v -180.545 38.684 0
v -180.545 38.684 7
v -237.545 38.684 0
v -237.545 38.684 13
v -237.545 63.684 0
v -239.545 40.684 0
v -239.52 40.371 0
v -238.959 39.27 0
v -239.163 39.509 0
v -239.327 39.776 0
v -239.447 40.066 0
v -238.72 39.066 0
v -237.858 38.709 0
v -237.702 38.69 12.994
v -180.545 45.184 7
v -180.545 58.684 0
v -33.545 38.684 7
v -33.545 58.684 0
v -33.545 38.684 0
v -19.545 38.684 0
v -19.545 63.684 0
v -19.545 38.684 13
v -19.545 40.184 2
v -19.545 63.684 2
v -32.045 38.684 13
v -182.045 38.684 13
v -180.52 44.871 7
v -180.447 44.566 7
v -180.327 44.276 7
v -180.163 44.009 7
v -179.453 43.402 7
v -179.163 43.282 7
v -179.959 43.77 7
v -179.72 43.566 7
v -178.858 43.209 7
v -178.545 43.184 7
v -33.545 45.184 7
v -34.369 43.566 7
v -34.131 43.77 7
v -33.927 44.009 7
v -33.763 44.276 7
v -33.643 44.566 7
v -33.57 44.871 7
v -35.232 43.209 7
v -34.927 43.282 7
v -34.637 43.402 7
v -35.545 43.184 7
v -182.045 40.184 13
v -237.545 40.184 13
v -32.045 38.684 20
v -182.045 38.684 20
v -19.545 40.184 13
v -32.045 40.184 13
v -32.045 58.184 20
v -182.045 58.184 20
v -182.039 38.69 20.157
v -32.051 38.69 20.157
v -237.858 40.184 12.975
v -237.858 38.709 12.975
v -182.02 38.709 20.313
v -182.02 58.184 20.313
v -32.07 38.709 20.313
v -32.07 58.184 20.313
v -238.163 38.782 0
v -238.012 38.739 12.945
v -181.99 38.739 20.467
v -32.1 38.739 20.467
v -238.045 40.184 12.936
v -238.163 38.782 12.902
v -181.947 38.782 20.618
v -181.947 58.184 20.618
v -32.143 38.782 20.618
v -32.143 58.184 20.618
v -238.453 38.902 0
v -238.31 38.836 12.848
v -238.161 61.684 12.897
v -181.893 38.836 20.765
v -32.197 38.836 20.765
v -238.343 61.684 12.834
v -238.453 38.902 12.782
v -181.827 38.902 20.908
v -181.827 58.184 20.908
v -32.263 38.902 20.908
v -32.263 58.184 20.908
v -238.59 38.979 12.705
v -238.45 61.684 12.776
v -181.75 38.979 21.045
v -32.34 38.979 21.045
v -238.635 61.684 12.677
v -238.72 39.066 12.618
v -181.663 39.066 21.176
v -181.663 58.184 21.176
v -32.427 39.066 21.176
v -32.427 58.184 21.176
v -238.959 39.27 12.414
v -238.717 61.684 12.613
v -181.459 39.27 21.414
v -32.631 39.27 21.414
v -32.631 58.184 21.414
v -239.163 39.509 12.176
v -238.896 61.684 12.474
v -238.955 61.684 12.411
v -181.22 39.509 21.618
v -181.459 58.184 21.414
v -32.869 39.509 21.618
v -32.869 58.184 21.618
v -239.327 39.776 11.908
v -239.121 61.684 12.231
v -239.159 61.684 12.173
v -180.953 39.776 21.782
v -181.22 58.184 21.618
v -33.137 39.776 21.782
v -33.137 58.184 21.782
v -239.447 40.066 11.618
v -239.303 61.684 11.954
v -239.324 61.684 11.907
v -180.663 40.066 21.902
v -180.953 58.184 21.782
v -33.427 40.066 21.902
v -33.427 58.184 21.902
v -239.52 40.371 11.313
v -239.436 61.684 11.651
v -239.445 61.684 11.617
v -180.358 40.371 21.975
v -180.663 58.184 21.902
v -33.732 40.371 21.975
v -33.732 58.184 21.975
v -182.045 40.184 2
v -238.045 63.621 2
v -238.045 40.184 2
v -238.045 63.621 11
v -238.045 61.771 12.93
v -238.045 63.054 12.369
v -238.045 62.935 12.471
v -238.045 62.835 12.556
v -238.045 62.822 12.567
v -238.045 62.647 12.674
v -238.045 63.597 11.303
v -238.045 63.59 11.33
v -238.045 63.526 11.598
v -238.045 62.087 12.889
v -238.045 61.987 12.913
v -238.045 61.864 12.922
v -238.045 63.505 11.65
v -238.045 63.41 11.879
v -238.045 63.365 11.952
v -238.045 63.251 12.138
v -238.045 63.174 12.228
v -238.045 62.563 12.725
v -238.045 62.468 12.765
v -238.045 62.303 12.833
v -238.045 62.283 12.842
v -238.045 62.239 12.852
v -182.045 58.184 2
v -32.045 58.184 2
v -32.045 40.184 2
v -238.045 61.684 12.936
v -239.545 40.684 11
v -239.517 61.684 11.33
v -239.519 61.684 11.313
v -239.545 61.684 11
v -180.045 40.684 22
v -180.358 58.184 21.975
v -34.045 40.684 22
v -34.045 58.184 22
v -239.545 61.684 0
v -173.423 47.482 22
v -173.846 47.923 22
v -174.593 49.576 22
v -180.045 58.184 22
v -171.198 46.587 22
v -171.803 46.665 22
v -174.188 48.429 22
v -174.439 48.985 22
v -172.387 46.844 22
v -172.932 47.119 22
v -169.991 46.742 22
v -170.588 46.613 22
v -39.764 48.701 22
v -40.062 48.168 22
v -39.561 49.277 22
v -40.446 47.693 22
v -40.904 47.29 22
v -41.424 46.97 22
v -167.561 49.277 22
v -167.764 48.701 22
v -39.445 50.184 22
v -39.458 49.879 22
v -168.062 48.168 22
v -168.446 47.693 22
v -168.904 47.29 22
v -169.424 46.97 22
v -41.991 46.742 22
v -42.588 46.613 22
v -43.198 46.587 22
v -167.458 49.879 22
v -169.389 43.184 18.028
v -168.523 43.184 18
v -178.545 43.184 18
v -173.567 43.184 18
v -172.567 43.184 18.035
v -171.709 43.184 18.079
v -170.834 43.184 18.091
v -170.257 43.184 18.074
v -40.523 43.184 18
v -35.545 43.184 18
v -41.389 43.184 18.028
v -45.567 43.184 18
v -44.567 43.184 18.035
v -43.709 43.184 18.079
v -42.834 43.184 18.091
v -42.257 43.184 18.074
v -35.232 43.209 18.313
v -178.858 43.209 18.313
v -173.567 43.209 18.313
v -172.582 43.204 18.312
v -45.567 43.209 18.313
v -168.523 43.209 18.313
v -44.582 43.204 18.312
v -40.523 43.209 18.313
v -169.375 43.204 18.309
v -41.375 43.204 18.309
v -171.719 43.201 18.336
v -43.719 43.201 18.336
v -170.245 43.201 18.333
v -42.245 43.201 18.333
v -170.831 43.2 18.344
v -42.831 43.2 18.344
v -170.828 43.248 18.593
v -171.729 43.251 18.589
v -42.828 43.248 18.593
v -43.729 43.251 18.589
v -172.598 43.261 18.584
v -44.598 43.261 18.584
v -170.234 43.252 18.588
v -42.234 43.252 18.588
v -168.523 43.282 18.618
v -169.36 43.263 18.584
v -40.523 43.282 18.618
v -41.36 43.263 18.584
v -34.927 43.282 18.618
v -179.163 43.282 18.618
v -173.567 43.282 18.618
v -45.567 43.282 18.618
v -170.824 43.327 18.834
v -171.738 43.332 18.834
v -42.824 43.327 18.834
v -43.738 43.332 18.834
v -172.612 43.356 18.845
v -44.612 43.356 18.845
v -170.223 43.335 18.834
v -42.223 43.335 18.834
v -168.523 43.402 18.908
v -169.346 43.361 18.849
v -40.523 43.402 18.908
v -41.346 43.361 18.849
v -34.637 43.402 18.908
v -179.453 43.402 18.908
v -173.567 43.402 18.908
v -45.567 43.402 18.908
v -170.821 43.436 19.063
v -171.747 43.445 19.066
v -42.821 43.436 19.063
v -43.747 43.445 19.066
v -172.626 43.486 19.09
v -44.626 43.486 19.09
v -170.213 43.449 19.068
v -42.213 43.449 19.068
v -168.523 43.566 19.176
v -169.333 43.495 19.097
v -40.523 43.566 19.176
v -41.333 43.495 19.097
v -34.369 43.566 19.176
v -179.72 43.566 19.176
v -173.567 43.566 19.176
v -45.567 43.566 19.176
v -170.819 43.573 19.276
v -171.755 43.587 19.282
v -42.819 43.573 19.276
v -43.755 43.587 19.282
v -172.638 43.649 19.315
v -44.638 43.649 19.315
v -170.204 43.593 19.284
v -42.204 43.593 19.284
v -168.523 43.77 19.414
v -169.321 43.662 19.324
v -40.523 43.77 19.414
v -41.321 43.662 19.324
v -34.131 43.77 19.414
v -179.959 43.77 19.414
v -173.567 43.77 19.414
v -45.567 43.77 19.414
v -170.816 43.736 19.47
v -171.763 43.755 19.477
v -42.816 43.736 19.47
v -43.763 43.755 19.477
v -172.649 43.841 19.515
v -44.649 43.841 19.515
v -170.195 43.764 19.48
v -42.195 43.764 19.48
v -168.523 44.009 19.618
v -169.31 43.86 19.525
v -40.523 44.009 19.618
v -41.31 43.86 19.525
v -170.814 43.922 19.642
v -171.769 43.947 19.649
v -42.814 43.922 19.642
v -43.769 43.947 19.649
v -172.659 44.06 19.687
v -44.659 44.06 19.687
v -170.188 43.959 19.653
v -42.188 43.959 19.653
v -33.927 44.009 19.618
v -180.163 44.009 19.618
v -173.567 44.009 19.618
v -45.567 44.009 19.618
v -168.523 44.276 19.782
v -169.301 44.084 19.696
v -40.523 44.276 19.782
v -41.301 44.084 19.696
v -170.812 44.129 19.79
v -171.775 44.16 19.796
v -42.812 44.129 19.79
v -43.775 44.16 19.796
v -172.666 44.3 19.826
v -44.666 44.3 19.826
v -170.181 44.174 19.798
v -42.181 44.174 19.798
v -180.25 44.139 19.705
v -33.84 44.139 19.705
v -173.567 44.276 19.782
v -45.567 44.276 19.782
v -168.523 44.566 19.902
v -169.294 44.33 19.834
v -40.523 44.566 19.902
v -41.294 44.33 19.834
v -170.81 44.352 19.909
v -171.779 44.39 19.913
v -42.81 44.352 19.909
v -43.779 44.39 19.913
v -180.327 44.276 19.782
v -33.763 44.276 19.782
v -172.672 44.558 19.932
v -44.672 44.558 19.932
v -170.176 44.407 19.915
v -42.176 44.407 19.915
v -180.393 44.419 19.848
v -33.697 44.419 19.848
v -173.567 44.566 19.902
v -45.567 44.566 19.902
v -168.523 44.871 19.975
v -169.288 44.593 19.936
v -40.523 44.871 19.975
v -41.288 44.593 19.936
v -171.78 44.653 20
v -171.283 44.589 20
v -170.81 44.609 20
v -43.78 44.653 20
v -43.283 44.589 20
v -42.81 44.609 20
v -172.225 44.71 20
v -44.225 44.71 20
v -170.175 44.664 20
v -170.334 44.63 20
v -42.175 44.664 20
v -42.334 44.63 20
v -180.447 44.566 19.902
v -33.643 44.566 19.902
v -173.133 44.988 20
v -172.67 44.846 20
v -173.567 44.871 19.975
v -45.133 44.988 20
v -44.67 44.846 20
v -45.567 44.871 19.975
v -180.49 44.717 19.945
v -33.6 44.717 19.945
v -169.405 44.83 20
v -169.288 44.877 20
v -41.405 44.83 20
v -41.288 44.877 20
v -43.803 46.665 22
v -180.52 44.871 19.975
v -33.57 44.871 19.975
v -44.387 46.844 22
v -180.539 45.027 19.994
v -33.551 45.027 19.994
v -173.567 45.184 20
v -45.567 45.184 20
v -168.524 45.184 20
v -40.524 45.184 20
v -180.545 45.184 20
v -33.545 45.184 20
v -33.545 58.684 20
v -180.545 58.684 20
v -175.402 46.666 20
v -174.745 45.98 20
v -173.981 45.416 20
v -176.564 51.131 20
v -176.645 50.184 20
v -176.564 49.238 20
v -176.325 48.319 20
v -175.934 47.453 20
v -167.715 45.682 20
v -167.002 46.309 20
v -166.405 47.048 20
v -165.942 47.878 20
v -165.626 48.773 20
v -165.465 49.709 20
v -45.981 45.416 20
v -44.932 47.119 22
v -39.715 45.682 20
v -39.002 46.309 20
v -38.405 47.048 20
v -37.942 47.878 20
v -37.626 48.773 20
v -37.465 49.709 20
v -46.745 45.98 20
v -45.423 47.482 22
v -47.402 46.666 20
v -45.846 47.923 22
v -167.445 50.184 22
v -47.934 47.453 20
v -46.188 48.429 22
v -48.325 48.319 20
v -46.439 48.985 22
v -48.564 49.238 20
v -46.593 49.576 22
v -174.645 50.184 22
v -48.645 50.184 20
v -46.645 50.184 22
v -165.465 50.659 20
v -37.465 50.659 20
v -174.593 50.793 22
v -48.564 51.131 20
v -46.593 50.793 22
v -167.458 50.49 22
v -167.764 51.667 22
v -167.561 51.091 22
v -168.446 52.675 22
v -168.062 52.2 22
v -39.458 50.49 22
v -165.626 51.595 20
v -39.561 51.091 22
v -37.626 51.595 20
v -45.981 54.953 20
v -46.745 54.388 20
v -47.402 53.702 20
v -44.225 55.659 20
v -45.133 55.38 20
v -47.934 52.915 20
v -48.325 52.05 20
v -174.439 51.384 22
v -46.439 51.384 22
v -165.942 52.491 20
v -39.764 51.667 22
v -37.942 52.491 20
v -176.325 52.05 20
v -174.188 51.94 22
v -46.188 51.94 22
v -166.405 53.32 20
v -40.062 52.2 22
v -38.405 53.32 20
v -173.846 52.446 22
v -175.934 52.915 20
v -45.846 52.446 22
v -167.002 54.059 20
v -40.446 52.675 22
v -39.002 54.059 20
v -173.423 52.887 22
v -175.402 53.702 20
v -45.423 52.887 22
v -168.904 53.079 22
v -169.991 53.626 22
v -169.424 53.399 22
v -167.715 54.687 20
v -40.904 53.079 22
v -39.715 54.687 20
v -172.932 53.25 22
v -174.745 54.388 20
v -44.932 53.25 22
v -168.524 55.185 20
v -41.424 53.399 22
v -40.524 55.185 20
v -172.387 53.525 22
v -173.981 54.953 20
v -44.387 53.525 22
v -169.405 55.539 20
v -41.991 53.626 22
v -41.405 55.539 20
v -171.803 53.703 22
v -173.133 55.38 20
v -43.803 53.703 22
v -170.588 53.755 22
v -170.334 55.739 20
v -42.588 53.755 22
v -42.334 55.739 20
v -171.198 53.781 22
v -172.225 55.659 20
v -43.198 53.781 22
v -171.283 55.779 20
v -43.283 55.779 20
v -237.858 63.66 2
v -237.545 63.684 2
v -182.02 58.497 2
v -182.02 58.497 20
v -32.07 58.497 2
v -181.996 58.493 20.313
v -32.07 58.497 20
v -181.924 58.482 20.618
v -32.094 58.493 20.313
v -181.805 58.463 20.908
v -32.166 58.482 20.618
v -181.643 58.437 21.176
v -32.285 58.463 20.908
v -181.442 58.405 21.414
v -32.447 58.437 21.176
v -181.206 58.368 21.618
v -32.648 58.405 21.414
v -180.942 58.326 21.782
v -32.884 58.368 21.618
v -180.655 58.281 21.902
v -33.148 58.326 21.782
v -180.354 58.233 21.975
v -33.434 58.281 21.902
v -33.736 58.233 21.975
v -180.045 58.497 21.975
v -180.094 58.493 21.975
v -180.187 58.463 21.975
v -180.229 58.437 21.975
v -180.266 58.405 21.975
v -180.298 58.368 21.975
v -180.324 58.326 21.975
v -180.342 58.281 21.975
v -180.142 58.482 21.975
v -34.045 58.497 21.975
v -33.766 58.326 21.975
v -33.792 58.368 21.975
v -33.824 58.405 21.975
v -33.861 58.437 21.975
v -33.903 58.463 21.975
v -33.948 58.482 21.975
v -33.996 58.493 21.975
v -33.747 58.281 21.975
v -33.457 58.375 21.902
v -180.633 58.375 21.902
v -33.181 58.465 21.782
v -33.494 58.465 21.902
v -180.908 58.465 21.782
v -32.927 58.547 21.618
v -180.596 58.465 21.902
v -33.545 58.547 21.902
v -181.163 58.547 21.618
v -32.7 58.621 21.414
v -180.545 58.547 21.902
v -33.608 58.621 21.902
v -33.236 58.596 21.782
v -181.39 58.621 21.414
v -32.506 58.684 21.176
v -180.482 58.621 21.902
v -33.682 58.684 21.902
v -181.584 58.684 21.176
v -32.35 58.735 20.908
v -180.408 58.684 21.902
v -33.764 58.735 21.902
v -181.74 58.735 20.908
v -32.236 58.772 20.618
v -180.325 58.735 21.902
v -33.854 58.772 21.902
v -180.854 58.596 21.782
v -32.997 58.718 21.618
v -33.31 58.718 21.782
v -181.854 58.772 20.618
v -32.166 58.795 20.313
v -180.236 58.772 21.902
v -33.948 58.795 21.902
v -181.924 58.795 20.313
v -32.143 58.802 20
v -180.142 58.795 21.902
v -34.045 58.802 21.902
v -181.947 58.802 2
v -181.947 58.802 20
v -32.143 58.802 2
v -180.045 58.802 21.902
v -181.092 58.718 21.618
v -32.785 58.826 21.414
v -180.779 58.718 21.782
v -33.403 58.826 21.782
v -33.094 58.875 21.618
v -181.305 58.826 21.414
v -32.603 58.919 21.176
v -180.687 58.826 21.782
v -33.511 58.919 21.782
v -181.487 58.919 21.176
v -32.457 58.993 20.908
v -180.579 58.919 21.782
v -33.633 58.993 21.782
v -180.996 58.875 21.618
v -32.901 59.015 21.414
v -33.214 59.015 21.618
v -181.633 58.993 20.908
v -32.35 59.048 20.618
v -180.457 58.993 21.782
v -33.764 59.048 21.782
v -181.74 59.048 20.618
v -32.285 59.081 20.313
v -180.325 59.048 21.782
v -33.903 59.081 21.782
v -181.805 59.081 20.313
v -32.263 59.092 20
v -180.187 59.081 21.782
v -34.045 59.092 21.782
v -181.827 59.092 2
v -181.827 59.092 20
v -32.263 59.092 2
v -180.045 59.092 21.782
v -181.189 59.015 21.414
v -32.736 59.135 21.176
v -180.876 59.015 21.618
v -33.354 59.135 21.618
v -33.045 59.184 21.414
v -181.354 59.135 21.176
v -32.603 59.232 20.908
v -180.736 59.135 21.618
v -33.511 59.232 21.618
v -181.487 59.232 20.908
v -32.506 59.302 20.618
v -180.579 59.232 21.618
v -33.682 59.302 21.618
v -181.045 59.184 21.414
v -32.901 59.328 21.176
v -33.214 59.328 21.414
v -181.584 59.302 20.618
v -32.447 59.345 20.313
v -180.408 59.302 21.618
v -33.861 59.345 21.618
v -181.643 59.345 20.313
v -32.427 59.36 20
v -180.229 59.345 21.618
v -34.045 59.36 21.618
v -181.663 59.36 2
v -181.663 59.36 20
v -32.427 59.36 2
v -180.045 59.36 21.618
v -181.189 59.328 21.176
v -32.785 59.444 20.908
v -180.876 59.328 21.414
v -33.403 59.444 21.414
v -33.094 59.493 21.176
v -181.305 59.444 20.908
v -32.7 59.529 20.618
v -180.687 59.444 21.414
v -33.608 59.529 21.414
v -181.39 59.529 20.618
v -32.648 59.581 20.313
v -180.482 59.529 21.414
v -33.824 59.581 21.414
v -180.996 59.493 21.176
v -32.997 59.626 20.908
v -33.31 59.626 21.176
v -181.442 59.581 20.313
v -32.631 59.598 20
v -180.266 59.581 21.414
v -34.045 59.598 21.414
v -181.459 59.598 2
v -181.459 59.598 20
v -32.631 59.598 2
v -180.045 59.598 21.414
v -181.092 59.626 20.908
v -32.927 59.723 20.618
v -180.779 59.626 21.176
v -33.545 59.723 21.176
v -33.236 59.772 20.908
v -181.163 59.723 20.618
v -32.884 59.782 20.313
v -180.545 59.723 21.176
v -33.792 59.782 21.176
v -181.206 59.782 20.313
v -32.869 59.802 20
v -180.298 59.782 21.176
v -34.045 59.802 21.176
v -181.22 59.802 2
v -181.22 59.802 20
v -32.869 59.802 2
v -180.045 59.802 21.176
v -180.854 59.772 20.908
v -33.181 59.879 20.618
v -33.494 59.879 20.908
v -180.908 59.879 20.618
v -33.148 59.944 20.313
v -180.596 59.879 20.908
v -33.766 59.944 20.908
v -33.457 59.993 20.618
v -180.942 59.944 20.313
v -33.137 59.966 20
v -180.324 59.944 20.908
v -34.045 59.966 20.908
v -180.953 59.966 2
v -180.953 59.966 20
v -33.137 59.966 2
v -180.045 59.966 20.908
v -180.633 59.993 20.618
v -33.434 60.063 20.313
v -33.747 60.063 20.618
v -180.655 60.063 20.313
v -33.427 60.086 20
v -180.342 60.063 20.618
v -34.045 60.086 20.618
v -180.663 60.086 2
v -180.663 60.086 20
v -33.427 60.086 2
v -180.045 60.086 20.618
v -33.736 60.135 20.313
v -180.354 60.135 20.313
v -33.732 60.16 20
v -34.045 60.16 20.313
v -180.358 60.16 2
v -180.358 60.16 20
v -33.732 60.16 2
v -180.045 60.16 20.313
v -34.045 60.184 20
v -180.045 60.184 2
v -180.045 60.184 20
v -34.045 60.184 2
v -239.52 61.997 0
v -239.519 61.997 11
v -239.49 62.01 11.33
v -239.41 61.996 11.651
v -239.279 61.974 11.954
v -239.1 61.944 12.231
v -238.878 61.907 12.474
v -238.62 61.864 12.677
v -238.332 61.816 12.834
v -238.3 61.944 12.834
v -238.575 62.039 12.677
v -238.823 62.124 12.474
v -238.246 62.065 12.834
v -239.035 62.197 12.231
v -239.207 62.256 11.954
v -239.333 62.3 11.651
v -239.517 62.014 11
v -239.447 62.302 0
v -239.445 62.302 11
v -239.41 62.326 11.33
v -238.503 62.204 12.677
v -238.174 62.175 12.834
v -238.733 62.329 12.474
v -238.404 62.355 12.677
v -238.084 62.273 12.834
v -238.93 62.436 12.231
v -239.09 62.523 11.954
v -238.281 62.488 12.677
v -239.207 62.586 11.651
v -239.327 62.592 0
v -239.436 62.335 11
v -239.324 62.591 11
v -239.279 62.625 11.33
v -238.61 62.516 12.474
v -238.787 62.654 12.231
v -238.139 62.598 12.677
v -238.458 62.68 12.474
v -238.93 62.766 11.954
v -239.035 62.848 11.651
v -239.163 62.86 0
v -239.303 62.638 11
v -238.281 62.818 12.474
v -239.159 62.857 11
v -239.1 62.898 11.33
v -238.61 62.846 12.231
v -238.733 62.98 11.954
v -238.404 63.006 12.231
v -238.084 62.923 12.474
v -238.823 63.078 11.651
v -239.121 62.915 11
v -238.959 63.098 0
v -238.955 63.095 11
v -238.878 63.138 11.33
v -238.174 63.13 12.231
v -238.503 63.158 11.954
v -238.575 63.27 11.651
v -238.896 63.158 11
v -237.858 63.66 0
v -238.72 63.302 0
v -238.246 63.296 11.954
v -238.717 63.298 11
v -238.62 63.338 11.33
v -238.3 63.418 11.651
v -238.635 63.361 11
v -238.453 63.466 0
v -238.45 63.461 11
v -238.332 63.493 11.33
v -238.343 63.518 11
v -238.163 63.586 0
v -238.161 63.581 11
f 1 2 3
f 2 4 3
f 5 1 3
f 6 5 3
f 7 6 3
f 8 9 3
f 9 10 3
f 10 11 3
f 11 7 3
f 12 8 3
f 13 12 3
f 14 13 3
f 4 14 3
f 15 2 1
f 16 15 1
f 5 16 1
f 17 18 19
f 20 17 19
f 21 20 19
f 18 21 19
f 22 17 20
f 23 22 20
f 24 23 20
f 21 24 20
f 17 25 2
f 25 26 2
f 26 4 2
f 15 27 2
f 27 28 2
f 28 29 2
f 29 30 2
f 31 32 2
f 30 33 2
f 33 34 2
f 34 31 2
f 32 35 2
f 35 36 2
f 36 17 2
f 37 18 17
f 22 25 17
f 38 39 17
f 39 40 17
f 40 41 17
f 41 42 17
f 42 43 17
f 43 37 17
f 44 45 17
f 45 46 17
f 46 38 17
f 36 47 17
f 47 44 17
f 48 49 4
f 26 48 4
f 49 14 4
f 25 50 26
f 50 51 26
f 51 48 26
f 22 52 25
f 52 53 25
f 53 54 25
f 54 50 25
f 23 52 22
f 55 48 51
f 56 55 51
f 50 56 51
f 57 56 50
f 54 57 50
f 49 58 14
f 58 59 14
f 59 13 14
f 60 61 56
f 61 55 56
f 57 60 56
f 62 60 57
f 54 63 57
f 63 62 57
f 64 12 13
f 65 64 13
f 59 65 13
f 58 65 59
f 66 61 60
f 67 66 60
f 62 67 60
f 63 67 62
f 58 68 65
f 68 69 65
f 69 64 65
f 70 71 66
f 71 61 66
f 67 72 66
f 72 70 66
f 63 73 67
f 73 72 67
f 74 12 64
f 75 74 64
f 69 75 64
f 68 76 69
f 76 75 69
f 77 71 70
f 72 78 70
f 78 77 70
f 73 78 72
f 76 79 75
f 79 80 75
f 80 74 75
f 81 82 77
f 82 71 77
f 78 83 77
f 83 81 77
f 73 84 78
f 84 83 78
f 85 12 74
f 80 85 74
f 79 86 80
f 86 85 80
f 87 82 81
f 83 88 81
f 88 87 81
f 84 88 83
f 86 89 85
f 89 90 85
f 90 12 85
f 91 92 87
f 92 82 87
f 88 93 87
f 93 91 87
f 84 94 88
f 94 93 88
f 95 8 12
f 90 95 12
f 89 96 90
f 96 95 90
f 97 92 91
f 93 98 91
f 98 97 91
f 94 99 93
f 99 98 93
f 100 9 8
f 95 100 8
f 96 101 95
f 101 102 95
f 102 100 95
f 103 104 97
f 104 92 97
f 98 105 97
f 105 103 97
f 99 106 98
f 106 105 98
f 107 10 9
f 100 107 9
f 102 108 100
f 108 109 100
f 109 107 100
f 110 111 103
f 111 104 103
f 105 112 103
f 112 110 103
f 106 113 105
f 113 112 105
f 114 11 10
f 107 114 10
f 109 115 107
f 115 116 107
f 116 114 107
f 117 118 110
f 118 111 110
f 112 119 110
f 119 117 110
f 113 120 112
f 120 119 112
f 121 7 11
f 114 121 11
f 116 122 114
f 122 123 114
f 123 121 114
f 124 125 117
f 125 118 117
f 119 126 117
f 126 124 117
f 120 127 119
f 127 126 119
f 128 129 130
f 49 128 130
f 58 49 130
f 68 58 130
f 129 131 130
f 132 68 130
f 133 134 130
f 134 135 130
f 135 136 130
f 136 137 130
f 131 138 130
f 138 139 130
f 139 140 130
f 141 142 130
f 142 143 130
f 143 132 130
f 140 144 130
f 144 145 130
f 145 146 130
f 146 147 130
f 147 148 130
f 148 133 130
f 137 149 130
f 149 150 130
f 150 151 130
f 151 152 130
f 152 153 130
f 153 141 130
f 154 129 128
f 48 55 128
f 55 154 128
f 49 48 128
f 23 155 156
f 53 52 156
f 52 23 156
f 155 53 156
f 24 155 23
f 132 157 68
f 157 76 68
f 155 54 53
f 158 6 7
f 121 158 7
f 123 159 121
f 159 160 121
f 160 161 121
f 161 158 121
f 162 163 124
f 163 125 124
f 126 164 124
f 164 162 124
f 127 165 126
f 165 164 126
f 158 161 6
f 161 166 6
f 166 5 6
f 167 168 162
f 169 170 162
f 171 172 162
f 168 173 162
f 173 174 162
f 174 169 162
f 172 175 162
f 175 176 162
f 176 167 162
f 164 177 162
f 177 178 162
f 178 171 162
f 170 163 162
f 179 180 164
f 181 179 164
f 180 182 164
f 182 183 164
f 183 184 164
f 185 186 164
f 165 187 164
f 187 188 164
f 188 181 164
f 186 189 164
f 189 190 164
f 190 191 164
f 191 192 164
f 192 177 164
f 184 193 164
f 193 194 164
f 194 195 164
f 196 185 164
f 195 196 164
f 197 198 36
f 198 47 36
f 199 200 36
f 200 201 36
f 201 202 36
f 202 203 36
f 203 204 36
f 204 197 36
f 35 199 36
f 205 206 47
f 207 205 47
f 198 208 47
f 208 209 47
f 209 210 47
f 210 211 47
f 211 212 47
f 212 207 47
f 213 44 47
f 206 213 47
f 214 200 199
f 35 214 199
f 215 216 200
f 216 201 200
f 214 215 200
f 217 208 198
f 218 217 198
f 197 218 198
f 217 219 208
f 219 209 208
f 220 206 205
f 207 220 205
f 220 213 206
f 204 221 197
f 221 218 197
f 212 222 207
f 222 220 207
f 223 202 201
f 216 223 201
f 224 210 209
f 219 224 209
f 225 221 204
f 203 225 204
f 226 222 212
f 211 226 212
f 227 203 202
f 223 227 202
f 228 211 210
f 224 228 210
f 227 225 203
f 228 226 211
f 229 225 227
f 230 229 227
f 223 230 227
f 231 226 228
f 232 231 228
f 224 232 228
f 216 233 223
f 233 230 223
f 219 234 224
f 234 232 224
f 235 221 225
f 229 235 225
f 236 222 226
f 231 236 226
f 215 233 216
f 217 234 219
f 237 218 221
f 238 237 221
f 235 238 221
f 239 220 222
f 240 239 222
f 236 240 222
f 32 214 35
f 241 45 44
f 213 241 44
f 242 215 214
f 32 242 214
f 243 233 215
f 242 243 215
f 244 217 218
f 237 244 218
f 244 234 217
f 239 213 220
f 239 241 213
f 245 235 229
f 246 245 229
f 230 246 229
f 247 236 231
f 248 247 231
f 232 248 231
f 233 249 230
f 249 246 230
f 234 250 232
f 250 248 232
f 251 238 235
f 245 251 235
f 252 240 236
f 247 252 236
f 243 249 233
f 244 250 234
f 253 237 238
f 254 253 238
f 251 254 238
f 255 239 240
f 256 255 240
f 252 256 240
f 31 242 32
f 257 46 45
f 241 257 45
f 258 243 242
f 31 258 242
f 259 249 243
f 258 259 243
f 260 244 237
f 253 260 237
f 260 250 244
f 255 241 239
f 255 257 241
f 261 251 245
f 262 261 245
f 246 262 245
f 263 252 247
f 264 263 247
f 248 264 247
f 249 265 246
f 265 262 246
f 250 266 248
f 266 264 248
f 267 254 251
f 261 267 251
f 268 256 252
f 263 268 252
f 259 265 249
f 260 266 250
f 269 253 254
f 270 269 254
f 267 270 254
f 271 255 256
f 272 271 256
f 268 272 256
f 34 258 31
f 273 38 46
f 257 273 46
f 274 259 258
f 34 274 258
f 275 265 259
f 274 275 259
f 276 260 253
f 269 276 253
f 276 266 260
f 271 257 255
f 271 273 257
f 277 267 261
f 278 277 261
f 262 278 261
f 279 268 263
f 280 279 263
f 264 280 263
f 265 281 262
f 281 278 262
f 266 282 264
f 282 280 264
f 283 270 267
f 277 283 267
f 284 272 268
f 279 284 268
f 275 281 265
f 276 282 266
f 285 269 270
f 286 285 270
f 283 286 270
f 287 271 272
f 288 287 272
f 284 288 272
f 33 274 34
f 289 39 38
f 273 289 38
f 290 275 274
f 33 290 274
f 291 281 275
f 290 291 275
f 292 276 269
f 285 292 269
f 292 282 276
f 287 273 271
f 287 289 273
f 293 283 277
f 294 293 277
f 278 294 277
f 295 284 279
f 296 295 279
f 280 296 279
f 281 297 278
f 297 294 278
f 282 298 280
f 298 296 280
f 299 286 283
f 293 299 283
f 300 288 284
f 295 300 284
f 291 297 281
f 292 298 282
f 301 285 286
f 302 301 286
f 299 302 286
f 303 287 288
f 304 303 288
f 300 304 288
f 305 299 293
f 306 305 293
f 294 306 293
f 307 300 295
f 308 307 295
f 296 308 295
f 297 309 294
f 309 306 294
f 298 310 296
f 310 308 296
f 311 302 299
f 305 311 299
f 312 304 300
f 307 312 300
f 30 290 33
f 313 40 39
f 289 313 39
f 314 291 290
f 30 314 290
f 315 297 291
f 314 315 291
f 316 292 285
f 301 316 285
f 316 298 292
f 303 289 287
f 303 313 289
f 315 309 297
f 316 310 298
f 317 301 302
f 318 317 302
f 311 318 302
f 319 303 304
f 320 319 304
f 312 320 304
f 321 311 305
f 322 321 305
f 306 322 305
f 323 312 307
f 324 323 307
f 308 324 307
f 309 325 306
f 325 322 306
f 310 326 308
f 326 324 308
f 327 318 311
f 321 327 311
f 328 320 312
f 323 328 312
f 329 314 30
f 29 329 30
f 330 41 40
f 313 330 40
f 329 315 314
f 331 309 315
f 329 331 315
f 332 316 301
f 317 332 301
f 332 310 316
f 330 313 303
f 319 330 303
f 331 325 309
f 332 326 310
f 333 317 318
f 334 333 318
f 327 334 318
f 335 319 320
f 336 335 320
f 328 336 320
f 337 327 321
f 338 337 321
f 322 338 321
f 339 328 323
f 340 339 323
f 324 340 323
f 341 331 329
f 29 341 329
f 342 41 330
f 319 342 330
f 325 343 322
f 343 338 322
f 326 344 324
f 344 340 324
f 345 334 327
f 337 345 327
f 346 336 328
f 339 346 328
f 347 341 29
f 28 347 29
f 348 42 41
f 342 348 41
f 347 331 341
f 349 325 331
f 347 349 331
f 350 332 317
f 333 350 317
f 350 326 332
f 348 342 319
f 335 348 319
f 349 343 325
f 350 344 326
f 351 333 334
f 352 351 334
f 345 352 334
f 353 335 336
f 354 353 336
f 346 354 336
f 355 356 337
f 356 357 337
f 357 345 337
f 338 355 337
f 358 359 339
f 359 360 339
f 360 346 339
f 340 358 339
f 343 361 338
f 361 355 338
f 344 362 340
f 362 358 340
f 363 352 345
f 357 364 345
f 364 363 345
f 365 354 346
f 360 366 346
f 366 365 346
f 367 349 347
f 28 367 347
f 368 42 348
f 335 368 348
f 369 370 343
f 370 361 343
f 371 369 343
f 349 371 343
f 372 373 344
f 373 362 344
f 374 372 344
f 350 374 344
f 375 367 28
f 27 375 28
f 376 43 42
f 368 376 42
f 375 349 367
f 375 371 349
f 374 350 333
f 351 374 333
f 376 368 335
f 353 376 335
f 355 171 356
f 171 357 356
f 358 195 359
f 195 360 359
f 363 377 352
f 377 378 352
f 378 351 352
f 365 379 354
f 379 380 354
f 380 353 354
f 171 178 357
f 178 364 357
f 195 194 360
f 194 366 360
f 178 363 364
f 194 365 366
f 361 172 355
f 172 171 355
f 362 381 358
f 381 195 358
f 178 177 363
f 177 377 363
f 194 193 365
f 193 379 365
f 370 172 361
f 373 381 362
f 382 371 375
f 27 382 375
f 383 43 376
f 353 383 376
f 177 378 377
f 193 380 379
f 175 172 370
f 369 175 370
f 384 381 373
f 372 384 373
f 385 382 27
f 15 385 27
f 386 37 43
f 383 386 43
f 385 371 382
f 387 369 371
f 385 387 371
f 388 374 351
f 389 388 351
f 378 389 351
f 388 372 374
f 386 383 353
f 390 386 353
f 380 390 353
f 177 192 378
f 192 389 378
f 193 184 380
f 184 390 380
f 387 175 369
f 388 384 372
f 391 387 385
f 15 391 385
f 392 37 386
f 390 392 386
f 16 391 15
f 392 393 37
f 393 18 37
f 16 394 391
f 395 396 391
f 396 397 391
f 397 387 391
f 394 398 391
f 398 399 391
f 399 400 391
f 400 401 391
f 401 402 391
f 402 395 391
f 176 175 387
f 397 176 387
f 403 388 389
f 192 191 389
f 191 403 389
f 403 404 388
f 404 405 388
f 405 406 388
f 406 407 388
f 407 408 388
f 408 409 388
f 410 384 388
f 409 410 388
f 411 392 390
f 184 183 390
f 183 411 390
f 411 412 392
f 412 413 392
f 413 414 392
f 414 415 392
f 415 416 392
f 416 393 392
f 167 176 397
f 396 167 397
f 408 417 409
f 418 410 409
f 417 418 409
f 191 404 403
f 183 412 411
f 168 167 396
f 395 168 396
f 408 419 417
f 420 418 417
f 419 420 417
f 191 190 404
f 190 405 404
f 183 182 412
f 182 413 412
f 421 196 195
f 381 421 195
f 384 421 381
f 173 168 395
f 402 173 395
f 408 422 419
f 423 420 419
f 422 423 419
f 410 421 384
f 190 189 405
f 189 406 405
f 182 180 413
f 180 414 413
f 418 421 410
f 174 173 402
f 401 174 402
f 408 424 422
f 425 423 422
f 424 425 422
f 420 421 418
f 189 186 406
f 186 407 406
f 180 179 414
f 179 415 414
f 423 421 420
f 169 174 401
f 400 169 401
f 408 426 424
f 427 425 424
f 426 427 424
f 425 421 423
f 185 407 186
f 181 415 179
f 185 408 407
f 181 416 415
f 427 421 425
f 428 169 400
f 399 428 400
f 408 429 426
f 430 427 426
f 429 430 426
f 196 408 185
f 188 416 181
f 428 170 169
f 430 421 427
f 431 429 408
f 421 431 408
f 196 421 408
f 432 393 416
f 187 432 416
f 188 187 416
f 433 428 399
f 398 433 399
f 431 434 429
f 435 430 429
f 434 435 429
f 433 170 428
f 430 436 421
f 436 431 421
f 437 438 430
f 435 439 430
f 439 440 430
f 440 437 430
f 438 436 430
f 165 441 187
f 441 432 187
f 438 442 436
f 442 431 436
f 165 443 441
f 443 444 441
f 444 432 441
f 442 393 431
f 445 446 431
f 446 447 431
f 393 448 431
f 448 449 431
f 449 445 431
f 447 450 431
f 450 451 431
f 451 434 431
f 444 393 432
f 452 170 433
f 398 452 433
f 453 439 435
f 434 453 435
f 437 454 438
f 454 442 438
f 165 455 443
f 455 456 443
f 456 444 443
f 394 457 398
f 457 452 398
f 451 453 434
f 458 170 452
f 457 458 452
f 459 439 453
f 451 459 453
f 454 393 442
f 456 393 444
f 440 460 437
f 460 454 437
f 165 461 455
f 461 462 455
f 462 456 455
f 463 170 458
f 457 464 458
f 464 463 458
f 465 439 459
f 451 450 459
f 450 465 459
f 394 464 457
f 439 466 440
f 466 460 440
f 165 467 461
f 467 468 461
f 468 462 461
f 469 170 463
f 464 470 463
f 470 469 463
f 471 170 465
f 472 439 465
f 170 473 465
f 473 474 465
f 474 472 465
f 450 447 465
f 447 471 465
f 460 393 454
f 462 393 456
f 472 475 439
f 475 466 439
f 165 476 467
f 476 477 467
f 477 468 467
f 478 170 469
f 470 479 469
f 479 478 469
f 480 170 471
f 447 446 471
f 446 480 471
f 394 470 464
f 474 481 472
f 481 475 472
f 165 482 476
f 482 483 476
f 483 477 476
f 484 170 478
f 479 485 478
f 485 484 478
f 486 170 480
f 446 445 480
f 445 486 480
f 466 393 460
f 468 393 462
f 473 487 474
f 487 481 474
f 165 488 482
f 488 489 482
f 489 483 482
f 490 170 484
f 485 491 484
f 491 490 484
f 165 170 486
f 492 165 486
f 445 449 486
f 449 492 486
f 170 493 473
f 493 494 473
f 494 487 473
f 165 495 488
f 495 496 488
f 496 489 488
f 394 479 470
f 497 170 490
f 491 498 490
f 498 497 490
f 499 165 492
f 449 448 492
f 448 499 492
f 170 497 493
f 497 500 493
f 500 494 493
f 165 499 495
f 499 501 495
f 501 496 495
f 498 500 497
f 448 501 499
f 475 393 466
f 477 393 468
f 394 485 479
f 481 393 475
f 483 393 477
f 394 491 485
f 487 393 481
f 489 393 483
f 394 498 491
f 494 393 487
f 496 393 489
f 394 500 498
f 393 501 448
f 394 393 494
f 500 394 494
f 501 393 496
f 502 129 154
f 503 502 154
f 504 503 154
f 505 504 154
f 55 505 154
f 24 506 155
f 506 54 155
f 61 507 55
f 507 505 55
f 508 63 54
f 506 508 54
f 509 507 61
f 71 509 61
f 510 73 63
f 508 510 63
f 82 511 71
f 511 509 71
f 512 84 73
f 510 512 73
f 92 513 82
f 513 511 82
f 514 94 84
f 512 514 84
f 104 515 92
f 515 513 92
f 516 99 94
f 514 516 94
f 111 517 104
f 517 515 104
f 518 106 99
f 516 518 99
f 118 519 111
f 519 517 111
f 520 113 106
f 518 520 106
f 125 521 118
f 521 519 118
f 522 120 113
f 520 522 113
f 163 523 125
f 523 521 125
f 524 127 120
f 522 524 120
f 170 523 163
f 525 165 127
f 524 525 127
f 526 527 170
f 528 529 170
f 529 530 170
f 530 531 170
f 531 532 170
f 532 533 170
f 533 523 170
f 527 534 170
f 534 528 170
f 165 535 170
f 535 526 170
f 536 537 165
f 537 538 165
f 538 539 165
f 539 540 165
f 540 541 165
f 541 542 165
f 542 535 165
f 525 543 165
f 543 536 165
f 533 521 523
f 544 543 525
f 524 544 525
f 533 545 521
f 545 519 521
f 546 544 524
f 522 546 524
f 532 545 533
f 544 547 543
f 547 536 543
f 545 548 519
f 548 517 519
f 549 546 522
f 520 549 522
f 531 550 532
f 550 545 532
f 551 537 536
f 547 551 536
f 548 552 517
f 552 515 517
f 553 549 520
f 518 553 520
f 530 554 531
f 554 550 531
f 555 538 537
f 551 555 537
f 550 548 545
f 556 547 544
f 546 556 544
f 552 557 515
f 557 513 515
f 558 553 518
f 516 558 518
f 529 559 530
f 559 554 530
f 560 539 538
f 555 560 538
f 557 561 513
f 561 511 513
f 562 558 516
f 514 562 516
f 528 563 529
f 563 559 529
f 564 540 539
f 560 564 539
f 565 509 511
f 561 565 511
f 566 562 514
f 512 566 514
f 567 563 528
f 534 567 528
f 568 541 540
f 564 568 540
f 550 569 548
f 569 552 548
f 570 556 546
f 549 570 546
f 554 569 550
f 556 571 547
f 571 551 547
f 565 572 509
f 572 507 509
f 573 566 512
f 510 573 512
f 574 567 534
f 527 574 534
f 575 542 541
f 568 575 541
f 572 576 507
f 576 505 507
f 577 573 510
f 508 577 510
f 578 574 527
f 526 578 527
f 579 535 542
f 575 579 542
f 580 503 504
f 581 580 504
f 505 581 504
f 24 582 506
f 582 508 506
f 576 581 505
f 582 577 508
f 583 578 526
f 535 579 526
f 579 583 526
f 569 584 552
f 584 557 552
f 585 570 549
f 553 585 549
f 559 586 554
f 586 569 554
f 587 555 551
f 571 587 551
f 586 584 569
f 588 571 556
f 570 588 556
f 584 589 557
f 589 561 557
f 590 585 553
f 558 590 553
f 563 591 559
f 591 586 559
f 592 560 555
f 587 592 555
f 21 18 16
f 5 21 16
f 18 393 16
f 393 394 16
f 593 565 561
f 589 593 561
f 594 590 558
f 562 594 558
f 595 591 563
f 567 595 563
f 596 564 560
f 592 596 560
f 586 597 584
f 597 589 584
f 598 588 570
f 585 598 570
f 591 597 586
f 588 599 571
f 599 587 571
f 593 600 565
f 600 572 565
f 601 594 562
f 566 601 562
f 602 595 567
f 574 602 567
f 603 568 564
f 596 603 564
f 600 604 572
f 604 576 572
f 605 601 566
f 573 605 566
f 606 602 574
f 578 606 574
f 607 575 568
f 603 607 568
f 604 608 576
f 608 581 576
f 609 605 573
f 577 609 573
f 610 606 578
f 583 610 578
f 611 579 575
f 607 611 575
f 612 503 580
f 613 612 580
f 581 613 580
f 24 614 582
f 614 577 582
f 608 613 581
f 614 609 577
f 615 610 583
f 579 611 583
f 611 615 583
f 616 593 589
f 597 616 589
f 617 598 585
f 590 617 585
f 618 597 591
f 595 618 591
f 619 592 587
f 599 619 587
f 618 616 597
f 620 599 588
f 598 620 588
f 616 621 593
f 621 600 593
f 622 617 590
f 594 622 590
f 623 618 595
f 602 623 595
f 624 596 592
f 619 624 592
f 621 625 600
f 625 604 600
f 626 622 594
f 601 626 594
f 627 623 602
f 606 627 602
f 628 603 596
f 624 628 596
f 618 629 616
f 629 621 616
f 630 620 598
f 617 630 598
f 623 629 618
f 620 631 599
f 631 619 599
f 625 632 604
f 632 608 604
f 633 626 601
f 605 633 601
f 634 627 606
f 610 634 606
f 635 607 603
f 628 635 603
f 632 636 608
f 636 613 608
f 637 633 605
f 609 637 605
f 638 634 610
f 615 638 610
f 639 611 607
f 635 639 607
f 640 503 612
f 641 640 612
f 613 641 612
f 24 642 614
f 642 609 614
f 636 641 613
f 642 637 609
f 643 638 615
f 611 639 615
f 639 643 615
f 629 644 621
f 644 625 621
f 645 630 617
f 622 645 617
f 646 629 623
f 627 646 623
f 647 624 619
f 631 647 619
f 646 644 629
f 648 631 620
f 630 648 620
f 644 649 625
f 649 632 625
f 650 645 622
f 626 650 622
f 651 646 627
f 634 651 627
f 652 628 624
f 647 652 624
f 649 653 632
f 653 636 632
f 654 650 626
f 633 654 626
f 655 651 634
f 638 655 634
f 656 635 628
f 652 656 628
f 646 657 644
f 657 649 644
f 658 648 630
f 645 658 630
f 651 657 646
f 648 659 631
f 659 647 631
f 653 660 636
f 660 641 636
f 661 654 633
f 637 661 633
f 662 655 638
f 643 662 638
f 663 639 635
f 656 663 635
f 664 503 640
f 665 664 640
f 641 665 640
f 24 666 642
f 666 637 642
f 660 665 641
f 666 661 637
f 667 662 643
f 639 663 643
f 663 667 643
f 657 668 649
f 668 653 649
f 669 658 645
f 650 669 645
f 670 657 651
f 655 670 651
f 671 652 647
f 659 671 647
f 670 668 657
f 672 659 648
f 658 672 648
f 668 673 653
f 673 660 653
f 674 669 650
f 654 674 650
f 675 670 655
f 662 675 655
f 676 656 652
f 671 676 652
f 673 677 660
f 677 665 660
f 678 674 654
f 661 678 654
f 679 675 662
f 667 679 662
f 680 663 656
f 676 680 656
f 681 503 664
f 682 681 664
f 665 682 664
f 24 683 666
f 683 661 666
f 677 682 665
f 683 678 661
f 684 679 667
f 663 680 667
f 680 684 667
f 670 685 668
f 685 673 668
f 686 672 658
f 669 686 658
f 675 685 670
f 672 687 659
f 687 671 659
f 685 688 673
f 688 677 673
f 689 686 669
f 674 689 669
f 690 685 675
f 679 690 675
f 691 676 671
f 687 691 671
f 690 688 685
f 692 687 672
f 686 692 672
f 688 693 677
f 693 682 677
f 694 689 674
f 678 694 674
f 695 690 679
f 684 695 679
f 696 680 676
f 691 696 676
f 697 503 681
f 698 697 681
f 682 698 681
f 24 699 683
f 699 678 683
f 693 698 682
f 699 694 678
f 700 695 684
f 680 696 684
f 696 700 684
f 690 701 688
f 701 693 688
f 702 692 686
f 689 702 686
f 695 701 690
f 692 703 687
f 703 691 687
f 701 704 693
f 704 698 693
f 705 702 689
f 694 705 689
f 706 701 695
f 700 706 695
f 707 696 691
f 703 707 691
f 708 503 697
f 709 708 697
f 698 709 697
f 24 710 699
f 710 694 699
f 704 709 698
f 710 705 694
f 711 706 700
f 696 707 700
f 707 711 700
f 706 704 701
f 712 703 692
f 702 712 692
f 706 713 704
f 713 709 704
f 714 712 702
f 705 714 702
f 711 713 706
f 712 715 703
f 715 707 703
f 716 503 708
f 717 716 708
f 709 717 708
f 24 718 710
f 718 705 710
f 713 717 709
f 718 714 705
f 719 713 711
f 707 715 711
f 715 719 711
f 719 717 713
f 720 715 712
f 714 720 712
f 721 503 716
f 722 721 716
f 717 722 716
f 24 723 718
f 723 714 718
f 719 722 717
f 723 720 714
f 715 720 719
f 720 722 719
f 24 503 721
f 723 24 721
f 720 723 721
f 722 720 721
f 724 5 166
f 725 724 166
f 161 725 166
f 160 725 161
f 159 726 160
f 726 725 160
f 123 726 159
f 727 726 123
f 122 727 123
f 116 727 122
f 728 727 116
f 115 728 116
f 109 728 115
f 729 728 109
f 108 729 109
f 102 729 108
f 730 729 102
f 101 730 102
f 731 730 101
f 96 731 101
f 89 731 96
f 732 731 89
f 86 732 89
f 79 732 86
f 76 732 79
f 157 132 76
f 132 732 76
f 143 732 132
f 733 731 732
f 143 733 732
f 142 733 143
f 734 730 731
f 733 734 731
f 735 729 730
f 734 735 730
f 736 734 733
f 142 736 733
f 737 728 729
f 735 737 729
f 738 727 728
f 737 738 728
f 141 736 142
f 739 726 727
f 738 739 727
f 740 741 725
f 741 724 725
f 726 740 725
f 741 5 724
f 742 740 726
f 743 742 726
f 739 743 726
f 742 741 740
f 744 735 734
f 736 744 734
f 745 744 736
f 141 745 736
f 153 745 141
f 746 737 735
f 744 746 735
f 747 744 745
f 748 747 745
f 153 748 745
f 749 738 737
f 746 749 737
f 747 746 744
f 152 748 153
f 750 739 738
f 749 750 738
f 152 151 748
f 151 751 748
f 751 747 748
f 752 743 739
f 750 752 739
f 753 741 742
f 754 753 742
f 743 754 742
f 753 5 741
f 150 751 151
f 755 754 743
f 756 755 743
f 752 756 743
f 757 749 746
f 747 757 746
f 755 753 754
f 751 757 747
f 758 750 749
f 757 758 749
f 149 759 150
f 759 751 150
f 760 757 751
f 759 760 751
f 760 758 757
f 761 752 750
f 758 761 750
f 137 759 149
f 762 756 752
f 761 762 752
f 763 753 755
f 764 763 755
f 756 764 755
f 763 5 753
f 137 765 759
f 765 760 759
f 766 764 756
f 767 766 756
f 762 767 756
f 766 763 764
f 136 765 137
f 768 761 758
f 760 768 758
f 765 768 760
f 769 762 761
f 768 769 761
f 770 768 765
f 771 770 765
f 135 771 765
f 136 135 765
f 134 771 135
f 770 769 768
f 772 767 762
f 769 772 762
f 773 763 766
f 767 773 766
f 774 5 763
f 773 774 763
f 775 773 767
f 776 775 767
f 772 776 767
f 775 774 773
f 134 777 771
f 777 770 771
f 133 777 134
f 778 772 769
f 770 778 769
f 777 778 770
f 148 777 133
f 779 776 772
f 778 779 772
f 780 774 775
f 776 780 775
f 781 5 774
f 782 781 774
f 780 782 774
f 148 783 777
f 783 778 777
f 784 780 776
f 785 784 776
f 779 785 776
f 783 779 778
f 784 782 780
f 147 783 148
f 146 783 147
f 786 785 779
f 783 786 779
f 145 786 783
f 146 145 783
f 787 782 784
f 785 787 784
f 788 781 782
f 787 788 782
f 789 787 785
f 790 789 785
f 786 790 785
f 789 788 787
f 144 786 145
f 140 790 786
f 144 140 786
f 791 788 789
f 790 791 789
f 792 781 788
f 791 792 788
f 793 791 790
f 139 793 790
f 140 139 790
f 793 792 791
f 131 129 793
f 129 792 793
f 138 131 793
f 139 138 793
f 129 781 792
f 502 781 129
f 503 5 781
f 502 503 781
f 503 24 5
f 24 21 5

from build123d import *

# Parameters (mm, degrees)
CROQUIS1_W                                   = 220
CROQUIS1_H                                   = 25
SALIENTE_EXTRUIR1_DEPTH                      = 2
SALIENTE_EXTRUIR2_DEPTH                      = 11
SALIENTE_EXTRUIR3_DEPTH                      = 7
CROQUIS5_W                                   = 150
CROQUIS5_H                                   = 20
SALIENTE_EXTRUIR4_DEPTH                      = 2
REDONDEO2_R                                  = 2
REDONDEO3_R                                  = 2
REDONDEO4_R                                  = 2
CROQUIS7_W                                   = 147
CROQUIS7_H                                   = 20
CORTAR_EXTRUIR1_DEPTH                        = 2
CROQUIS10_W                                  = 150
CROQUIS10_H                                  = 1.5
SALIENTE_EXTRUIR8_DEPTH                      = 15
CROQUIS11_R                                  = 2.25
CORTAR_EXTRUIR2_DEPTH                        = 15
REFRENTADO_PARA_TORNILLO_TAP_N_CON_C_2_COUNT = 2
REFRENTADO_PARA_TORNILLO_TAP_N_CON_C_2_PITCH = 128
REDONDEO5_R                                  = 2
CROQUIS14_W                                  = 147
CROQUIS14_H                                  = 3
SALIENTE_EXTRUIR9_DEPTH                      = 13
REDONDEO6_R                                  = 2


with BuildPart() as part:
    # Croquis1 → Saliente-Extruir1 (new body)
    with BuildSketch(Plane.XY):
        with Locations((-129.544939143, 51.184210526)):
            Rectangle(CROQUIS1_W, CROQUIS1_H)
    extrude(amount=SALIENTE_EXTRUIR1_DEPTH)

    # Croquis3 → Saliente-Extruir2 (add)
    with BuildSketch(Plane.XY.offset(2)):
        Polygon((-239.544939143, 63.684210526), (-239.544939143, 38.684210526), (-180.544939143, 38.684210526), (-180.544939143, 58.684210526), (-33.544939143, 58.684210526), (-33.544939143, 38.684210526), (-19.544939143, 38.684210526), (-19.544939143, 40.184210526), (-32.044939143, 40.184210526), (-32.044939143, 60.184210526), (-182.044939143, 60.184210526), (-182.044939143, 40.184210526), (-238.044939143, 40.184210526), (-238.044939143, 63.684210526), align=None)
    extrude(amount=SALIENTE_EXTRUIR2_DEPTH)

    # Croquis4 → Saliente-Extruir3 (add)
    with BuildSketch(Plane.XY.offset(13)):
        Polygon((-182.044939143, 40.184210526), (-180.544939143, 40.184210526), (-180.544939143, 40.470961068), (-180.544939143, 58.684210526), (-33.544939143, 58.684210526), (-33.544939143, 40.470961068), (-33.544939143, 40.184210526), (-32.044939143, 40.184210526), (-32.044939143, 40.470961068), (-32.044939143, 60.184210526), (-182.044939143, 60.184210526), align=None)
    extrude(amount=SALIENTE_EXTRUIR3_DEPTH)

    # Croquis5 → Saliente-Extruir4 (add)
    with BuildSketch(Plane.XY.offset(20)):
        with Locations((-107.044939143, 50.184210526)):
            Rectangle(CROQUIS5_W, CROQUIS5_H)
    extrude(amount=SALIENTE_EXTRUIR4_DEPTH)

    # Redondeo2
    redondeo2_edges = [part.edges().sort_by_distance(p)[0] for p in [
        (-239.544939143, 63.684210526, 6.5),
    ]]
    fillet(redondeo2_edges, radius=REDONDEO2_R)

    # Redondeo3
    # the kernel refuses this fillet: 2 mm, written as the material it takes off along each edge
    with BuildSketch(Plane(origin=(-239.544939143, 61.684210526, 13), x_dir=(1, 0, 0), z_dir=(0, -1, 0))) as redondeo3_piece_1:
        with BuildLine():
            CenterArc((REDONDEO3_R, -REDONDEO3_R), REDONDEO3_R, 90, 90)
            Line((0, -REDONDEO3_R), (0, 0))
            Line((0, 0), (REDONDEO3_R, 0))
        make_face()
    extrude(amount=28, mode=Mode.SUBTRACT)
    with BuildSketch(Plane(origin=(-237.544939143, 61.684210526, 13), x_dir=(0.7793111641702657, -0.6266371433290445, 0), z_dir=(-0.6266371433290445, -0.7793111641702657, 0))) as redondeo3_piece_2:
        with BuildLine():
            CenterArc((2 - REDONDEO3_R, -REDONDEO3_R), REDONDEO3_R, 0, 90)
            Line((2 - REDONDEO3_R, 0), (2, 0))
            Line((2, 0), (2, -REDONDEO3_R))
        make_face()
    revolve(axis=Axis((-237.544939143, 61.684210526, 13), (0, 0, 1)), revolution_arc=218.802450559, mode=Mode.SUBTRACT)

    # Redondeo4
    # the kernel refuses this fillet: 2 mm, written as the material it takes off along each edge
    with BuildSketch(Plane(origin=(-239.544939143, 38.684210526, -5), x_dir=(0, 1, 0), z_dir=(0, 0, 1))) as redondeo4_piece_1:
        with BuildLine():
            CenterArc((REDONDEO4_R, -REDONDEO4_R), REDONDEO4_R, 90, 90)
            Line((0, -REDONDEO4_R), (0, 0))
            Line((0, 0), (REDONDEO4_R, 0))
        make_face()
    extrude(amount=21, mode=Mode.SUBTRACT)

    # Croquis7 → Cortar-Extruir1 (cut)
    with BuildSketch(Plane.XY.offset(2)):
        with Locations((-107.044939143, 48.684210526)):
            Rectangle(CROQUIS7_W, CROQUIS7_H)
    extrude(amount=-CORTAR_EXTRUIR1_DEPTH, mode=Mode.SUBTRACT)

    # Croquis10 → Saliente-Extruir8 (add)
    with BuildSketch(Plane.XY.offset(22)):
        with Locations((-107.044939143, 39.434210526)):
            Rectangle(CROQUIS10_W, CROQUIS10_H)
    extrude(amount=-SALIENTE_EXTRUIR8_DEPTH)

    # Croquis11 → Cortar-Extruir2 (cut)
    with BuildSketch(Plane.XY.offset(22)):
        with Locations((-171.044939143, 50.184210526)):
            Circle(CROQUIS11_R)
        with Locations((-43.044939143, 50.184210526)):
            Circle(CROQUIS11_R)
    extrude(amount=-CORTAR_EXTRUIR2_DEPTH, mode=Mode.SUBTRACT)

    # Croquis12 → Refrentado para tornillo tapón con cabeza plana de clavija de M51 (revolve, cut)
    with BuildSketch(Plane(origin=(-171.044939143, 50.184210526, 20), x_dir=(0, 1, 0), z_dir=(1, 0, 0))):
        Polygon((0, 0), (0, 2), (2.9, 2), (2.9, 2.7), (5.6, 0), align=None)
    refrentado_para_tornillo_tap_n_con_cabez = revolve(axis=Axis((-171.044939143, 50.184210526, 13.65), (0, 0, 1)), mode=Mode.SUBTRACT)

    # Refrentado para tornillo tap_n con c 2: Refrentado para tornillo tapón con cabeza plana de clavija de M51 ×2
    with Locations(*[(i * REFRENTADO_PARA_TORNILLO_TAP_N_CON_C_2_PITCH, 0, 0) for i in range(1, REFRENTADO_PARA_TORNILLO_TAP_N_CON_C_2_COUNT)]):
        add(refrentado_para_tornillo_tap_n_con_cabez, mode=Mode.SUBTRACT)

    # Redondeo5
    redondeo5_edges = [part.edges().sort_by_distance(p)[0] for p in [
        (-107.044939143, 38.684210526, 22),
        (-32.044939143, 60.184210526, 12),
        (-182.044939143, 60.184210526, 12),
        (-182.044939143, 49.434210526, 22),
        (-32.044939143, 49.434210526, 22),
        (-107.044939143, 60.184210526, 22),
    ]]
    fillet(redondeo5_edges, radius=REDONDEO5_R)

    # Croquis14 → Saliente-Extruir9 (add)
    with BuildSketch(Plane(origin=(0, 0, 20), x_dir=(-1, 0, 0), z_dir=(0, 0, -1))):
        with Locations((107.044939143, 41.684210526)):
            Rectangle(CROQUIS14_W, CROQUIS14_H)
    extrude(amount=SALIENTE_EXTRUIR9_DEPTH)

    # Redondeo6
    redondeo6_edges = [part.edges().sort_by_distance(p)[0] for p in [
        (-180.544939143, 43.184210526, 13.5),
        (-107.044939143, 43.184210526, 20),
        (-33.544939143, 43.184210526, 13.5),
    ]]
    fillet(redondeo6_edges, radius=REDONDEO6_R)


solid = part.part
